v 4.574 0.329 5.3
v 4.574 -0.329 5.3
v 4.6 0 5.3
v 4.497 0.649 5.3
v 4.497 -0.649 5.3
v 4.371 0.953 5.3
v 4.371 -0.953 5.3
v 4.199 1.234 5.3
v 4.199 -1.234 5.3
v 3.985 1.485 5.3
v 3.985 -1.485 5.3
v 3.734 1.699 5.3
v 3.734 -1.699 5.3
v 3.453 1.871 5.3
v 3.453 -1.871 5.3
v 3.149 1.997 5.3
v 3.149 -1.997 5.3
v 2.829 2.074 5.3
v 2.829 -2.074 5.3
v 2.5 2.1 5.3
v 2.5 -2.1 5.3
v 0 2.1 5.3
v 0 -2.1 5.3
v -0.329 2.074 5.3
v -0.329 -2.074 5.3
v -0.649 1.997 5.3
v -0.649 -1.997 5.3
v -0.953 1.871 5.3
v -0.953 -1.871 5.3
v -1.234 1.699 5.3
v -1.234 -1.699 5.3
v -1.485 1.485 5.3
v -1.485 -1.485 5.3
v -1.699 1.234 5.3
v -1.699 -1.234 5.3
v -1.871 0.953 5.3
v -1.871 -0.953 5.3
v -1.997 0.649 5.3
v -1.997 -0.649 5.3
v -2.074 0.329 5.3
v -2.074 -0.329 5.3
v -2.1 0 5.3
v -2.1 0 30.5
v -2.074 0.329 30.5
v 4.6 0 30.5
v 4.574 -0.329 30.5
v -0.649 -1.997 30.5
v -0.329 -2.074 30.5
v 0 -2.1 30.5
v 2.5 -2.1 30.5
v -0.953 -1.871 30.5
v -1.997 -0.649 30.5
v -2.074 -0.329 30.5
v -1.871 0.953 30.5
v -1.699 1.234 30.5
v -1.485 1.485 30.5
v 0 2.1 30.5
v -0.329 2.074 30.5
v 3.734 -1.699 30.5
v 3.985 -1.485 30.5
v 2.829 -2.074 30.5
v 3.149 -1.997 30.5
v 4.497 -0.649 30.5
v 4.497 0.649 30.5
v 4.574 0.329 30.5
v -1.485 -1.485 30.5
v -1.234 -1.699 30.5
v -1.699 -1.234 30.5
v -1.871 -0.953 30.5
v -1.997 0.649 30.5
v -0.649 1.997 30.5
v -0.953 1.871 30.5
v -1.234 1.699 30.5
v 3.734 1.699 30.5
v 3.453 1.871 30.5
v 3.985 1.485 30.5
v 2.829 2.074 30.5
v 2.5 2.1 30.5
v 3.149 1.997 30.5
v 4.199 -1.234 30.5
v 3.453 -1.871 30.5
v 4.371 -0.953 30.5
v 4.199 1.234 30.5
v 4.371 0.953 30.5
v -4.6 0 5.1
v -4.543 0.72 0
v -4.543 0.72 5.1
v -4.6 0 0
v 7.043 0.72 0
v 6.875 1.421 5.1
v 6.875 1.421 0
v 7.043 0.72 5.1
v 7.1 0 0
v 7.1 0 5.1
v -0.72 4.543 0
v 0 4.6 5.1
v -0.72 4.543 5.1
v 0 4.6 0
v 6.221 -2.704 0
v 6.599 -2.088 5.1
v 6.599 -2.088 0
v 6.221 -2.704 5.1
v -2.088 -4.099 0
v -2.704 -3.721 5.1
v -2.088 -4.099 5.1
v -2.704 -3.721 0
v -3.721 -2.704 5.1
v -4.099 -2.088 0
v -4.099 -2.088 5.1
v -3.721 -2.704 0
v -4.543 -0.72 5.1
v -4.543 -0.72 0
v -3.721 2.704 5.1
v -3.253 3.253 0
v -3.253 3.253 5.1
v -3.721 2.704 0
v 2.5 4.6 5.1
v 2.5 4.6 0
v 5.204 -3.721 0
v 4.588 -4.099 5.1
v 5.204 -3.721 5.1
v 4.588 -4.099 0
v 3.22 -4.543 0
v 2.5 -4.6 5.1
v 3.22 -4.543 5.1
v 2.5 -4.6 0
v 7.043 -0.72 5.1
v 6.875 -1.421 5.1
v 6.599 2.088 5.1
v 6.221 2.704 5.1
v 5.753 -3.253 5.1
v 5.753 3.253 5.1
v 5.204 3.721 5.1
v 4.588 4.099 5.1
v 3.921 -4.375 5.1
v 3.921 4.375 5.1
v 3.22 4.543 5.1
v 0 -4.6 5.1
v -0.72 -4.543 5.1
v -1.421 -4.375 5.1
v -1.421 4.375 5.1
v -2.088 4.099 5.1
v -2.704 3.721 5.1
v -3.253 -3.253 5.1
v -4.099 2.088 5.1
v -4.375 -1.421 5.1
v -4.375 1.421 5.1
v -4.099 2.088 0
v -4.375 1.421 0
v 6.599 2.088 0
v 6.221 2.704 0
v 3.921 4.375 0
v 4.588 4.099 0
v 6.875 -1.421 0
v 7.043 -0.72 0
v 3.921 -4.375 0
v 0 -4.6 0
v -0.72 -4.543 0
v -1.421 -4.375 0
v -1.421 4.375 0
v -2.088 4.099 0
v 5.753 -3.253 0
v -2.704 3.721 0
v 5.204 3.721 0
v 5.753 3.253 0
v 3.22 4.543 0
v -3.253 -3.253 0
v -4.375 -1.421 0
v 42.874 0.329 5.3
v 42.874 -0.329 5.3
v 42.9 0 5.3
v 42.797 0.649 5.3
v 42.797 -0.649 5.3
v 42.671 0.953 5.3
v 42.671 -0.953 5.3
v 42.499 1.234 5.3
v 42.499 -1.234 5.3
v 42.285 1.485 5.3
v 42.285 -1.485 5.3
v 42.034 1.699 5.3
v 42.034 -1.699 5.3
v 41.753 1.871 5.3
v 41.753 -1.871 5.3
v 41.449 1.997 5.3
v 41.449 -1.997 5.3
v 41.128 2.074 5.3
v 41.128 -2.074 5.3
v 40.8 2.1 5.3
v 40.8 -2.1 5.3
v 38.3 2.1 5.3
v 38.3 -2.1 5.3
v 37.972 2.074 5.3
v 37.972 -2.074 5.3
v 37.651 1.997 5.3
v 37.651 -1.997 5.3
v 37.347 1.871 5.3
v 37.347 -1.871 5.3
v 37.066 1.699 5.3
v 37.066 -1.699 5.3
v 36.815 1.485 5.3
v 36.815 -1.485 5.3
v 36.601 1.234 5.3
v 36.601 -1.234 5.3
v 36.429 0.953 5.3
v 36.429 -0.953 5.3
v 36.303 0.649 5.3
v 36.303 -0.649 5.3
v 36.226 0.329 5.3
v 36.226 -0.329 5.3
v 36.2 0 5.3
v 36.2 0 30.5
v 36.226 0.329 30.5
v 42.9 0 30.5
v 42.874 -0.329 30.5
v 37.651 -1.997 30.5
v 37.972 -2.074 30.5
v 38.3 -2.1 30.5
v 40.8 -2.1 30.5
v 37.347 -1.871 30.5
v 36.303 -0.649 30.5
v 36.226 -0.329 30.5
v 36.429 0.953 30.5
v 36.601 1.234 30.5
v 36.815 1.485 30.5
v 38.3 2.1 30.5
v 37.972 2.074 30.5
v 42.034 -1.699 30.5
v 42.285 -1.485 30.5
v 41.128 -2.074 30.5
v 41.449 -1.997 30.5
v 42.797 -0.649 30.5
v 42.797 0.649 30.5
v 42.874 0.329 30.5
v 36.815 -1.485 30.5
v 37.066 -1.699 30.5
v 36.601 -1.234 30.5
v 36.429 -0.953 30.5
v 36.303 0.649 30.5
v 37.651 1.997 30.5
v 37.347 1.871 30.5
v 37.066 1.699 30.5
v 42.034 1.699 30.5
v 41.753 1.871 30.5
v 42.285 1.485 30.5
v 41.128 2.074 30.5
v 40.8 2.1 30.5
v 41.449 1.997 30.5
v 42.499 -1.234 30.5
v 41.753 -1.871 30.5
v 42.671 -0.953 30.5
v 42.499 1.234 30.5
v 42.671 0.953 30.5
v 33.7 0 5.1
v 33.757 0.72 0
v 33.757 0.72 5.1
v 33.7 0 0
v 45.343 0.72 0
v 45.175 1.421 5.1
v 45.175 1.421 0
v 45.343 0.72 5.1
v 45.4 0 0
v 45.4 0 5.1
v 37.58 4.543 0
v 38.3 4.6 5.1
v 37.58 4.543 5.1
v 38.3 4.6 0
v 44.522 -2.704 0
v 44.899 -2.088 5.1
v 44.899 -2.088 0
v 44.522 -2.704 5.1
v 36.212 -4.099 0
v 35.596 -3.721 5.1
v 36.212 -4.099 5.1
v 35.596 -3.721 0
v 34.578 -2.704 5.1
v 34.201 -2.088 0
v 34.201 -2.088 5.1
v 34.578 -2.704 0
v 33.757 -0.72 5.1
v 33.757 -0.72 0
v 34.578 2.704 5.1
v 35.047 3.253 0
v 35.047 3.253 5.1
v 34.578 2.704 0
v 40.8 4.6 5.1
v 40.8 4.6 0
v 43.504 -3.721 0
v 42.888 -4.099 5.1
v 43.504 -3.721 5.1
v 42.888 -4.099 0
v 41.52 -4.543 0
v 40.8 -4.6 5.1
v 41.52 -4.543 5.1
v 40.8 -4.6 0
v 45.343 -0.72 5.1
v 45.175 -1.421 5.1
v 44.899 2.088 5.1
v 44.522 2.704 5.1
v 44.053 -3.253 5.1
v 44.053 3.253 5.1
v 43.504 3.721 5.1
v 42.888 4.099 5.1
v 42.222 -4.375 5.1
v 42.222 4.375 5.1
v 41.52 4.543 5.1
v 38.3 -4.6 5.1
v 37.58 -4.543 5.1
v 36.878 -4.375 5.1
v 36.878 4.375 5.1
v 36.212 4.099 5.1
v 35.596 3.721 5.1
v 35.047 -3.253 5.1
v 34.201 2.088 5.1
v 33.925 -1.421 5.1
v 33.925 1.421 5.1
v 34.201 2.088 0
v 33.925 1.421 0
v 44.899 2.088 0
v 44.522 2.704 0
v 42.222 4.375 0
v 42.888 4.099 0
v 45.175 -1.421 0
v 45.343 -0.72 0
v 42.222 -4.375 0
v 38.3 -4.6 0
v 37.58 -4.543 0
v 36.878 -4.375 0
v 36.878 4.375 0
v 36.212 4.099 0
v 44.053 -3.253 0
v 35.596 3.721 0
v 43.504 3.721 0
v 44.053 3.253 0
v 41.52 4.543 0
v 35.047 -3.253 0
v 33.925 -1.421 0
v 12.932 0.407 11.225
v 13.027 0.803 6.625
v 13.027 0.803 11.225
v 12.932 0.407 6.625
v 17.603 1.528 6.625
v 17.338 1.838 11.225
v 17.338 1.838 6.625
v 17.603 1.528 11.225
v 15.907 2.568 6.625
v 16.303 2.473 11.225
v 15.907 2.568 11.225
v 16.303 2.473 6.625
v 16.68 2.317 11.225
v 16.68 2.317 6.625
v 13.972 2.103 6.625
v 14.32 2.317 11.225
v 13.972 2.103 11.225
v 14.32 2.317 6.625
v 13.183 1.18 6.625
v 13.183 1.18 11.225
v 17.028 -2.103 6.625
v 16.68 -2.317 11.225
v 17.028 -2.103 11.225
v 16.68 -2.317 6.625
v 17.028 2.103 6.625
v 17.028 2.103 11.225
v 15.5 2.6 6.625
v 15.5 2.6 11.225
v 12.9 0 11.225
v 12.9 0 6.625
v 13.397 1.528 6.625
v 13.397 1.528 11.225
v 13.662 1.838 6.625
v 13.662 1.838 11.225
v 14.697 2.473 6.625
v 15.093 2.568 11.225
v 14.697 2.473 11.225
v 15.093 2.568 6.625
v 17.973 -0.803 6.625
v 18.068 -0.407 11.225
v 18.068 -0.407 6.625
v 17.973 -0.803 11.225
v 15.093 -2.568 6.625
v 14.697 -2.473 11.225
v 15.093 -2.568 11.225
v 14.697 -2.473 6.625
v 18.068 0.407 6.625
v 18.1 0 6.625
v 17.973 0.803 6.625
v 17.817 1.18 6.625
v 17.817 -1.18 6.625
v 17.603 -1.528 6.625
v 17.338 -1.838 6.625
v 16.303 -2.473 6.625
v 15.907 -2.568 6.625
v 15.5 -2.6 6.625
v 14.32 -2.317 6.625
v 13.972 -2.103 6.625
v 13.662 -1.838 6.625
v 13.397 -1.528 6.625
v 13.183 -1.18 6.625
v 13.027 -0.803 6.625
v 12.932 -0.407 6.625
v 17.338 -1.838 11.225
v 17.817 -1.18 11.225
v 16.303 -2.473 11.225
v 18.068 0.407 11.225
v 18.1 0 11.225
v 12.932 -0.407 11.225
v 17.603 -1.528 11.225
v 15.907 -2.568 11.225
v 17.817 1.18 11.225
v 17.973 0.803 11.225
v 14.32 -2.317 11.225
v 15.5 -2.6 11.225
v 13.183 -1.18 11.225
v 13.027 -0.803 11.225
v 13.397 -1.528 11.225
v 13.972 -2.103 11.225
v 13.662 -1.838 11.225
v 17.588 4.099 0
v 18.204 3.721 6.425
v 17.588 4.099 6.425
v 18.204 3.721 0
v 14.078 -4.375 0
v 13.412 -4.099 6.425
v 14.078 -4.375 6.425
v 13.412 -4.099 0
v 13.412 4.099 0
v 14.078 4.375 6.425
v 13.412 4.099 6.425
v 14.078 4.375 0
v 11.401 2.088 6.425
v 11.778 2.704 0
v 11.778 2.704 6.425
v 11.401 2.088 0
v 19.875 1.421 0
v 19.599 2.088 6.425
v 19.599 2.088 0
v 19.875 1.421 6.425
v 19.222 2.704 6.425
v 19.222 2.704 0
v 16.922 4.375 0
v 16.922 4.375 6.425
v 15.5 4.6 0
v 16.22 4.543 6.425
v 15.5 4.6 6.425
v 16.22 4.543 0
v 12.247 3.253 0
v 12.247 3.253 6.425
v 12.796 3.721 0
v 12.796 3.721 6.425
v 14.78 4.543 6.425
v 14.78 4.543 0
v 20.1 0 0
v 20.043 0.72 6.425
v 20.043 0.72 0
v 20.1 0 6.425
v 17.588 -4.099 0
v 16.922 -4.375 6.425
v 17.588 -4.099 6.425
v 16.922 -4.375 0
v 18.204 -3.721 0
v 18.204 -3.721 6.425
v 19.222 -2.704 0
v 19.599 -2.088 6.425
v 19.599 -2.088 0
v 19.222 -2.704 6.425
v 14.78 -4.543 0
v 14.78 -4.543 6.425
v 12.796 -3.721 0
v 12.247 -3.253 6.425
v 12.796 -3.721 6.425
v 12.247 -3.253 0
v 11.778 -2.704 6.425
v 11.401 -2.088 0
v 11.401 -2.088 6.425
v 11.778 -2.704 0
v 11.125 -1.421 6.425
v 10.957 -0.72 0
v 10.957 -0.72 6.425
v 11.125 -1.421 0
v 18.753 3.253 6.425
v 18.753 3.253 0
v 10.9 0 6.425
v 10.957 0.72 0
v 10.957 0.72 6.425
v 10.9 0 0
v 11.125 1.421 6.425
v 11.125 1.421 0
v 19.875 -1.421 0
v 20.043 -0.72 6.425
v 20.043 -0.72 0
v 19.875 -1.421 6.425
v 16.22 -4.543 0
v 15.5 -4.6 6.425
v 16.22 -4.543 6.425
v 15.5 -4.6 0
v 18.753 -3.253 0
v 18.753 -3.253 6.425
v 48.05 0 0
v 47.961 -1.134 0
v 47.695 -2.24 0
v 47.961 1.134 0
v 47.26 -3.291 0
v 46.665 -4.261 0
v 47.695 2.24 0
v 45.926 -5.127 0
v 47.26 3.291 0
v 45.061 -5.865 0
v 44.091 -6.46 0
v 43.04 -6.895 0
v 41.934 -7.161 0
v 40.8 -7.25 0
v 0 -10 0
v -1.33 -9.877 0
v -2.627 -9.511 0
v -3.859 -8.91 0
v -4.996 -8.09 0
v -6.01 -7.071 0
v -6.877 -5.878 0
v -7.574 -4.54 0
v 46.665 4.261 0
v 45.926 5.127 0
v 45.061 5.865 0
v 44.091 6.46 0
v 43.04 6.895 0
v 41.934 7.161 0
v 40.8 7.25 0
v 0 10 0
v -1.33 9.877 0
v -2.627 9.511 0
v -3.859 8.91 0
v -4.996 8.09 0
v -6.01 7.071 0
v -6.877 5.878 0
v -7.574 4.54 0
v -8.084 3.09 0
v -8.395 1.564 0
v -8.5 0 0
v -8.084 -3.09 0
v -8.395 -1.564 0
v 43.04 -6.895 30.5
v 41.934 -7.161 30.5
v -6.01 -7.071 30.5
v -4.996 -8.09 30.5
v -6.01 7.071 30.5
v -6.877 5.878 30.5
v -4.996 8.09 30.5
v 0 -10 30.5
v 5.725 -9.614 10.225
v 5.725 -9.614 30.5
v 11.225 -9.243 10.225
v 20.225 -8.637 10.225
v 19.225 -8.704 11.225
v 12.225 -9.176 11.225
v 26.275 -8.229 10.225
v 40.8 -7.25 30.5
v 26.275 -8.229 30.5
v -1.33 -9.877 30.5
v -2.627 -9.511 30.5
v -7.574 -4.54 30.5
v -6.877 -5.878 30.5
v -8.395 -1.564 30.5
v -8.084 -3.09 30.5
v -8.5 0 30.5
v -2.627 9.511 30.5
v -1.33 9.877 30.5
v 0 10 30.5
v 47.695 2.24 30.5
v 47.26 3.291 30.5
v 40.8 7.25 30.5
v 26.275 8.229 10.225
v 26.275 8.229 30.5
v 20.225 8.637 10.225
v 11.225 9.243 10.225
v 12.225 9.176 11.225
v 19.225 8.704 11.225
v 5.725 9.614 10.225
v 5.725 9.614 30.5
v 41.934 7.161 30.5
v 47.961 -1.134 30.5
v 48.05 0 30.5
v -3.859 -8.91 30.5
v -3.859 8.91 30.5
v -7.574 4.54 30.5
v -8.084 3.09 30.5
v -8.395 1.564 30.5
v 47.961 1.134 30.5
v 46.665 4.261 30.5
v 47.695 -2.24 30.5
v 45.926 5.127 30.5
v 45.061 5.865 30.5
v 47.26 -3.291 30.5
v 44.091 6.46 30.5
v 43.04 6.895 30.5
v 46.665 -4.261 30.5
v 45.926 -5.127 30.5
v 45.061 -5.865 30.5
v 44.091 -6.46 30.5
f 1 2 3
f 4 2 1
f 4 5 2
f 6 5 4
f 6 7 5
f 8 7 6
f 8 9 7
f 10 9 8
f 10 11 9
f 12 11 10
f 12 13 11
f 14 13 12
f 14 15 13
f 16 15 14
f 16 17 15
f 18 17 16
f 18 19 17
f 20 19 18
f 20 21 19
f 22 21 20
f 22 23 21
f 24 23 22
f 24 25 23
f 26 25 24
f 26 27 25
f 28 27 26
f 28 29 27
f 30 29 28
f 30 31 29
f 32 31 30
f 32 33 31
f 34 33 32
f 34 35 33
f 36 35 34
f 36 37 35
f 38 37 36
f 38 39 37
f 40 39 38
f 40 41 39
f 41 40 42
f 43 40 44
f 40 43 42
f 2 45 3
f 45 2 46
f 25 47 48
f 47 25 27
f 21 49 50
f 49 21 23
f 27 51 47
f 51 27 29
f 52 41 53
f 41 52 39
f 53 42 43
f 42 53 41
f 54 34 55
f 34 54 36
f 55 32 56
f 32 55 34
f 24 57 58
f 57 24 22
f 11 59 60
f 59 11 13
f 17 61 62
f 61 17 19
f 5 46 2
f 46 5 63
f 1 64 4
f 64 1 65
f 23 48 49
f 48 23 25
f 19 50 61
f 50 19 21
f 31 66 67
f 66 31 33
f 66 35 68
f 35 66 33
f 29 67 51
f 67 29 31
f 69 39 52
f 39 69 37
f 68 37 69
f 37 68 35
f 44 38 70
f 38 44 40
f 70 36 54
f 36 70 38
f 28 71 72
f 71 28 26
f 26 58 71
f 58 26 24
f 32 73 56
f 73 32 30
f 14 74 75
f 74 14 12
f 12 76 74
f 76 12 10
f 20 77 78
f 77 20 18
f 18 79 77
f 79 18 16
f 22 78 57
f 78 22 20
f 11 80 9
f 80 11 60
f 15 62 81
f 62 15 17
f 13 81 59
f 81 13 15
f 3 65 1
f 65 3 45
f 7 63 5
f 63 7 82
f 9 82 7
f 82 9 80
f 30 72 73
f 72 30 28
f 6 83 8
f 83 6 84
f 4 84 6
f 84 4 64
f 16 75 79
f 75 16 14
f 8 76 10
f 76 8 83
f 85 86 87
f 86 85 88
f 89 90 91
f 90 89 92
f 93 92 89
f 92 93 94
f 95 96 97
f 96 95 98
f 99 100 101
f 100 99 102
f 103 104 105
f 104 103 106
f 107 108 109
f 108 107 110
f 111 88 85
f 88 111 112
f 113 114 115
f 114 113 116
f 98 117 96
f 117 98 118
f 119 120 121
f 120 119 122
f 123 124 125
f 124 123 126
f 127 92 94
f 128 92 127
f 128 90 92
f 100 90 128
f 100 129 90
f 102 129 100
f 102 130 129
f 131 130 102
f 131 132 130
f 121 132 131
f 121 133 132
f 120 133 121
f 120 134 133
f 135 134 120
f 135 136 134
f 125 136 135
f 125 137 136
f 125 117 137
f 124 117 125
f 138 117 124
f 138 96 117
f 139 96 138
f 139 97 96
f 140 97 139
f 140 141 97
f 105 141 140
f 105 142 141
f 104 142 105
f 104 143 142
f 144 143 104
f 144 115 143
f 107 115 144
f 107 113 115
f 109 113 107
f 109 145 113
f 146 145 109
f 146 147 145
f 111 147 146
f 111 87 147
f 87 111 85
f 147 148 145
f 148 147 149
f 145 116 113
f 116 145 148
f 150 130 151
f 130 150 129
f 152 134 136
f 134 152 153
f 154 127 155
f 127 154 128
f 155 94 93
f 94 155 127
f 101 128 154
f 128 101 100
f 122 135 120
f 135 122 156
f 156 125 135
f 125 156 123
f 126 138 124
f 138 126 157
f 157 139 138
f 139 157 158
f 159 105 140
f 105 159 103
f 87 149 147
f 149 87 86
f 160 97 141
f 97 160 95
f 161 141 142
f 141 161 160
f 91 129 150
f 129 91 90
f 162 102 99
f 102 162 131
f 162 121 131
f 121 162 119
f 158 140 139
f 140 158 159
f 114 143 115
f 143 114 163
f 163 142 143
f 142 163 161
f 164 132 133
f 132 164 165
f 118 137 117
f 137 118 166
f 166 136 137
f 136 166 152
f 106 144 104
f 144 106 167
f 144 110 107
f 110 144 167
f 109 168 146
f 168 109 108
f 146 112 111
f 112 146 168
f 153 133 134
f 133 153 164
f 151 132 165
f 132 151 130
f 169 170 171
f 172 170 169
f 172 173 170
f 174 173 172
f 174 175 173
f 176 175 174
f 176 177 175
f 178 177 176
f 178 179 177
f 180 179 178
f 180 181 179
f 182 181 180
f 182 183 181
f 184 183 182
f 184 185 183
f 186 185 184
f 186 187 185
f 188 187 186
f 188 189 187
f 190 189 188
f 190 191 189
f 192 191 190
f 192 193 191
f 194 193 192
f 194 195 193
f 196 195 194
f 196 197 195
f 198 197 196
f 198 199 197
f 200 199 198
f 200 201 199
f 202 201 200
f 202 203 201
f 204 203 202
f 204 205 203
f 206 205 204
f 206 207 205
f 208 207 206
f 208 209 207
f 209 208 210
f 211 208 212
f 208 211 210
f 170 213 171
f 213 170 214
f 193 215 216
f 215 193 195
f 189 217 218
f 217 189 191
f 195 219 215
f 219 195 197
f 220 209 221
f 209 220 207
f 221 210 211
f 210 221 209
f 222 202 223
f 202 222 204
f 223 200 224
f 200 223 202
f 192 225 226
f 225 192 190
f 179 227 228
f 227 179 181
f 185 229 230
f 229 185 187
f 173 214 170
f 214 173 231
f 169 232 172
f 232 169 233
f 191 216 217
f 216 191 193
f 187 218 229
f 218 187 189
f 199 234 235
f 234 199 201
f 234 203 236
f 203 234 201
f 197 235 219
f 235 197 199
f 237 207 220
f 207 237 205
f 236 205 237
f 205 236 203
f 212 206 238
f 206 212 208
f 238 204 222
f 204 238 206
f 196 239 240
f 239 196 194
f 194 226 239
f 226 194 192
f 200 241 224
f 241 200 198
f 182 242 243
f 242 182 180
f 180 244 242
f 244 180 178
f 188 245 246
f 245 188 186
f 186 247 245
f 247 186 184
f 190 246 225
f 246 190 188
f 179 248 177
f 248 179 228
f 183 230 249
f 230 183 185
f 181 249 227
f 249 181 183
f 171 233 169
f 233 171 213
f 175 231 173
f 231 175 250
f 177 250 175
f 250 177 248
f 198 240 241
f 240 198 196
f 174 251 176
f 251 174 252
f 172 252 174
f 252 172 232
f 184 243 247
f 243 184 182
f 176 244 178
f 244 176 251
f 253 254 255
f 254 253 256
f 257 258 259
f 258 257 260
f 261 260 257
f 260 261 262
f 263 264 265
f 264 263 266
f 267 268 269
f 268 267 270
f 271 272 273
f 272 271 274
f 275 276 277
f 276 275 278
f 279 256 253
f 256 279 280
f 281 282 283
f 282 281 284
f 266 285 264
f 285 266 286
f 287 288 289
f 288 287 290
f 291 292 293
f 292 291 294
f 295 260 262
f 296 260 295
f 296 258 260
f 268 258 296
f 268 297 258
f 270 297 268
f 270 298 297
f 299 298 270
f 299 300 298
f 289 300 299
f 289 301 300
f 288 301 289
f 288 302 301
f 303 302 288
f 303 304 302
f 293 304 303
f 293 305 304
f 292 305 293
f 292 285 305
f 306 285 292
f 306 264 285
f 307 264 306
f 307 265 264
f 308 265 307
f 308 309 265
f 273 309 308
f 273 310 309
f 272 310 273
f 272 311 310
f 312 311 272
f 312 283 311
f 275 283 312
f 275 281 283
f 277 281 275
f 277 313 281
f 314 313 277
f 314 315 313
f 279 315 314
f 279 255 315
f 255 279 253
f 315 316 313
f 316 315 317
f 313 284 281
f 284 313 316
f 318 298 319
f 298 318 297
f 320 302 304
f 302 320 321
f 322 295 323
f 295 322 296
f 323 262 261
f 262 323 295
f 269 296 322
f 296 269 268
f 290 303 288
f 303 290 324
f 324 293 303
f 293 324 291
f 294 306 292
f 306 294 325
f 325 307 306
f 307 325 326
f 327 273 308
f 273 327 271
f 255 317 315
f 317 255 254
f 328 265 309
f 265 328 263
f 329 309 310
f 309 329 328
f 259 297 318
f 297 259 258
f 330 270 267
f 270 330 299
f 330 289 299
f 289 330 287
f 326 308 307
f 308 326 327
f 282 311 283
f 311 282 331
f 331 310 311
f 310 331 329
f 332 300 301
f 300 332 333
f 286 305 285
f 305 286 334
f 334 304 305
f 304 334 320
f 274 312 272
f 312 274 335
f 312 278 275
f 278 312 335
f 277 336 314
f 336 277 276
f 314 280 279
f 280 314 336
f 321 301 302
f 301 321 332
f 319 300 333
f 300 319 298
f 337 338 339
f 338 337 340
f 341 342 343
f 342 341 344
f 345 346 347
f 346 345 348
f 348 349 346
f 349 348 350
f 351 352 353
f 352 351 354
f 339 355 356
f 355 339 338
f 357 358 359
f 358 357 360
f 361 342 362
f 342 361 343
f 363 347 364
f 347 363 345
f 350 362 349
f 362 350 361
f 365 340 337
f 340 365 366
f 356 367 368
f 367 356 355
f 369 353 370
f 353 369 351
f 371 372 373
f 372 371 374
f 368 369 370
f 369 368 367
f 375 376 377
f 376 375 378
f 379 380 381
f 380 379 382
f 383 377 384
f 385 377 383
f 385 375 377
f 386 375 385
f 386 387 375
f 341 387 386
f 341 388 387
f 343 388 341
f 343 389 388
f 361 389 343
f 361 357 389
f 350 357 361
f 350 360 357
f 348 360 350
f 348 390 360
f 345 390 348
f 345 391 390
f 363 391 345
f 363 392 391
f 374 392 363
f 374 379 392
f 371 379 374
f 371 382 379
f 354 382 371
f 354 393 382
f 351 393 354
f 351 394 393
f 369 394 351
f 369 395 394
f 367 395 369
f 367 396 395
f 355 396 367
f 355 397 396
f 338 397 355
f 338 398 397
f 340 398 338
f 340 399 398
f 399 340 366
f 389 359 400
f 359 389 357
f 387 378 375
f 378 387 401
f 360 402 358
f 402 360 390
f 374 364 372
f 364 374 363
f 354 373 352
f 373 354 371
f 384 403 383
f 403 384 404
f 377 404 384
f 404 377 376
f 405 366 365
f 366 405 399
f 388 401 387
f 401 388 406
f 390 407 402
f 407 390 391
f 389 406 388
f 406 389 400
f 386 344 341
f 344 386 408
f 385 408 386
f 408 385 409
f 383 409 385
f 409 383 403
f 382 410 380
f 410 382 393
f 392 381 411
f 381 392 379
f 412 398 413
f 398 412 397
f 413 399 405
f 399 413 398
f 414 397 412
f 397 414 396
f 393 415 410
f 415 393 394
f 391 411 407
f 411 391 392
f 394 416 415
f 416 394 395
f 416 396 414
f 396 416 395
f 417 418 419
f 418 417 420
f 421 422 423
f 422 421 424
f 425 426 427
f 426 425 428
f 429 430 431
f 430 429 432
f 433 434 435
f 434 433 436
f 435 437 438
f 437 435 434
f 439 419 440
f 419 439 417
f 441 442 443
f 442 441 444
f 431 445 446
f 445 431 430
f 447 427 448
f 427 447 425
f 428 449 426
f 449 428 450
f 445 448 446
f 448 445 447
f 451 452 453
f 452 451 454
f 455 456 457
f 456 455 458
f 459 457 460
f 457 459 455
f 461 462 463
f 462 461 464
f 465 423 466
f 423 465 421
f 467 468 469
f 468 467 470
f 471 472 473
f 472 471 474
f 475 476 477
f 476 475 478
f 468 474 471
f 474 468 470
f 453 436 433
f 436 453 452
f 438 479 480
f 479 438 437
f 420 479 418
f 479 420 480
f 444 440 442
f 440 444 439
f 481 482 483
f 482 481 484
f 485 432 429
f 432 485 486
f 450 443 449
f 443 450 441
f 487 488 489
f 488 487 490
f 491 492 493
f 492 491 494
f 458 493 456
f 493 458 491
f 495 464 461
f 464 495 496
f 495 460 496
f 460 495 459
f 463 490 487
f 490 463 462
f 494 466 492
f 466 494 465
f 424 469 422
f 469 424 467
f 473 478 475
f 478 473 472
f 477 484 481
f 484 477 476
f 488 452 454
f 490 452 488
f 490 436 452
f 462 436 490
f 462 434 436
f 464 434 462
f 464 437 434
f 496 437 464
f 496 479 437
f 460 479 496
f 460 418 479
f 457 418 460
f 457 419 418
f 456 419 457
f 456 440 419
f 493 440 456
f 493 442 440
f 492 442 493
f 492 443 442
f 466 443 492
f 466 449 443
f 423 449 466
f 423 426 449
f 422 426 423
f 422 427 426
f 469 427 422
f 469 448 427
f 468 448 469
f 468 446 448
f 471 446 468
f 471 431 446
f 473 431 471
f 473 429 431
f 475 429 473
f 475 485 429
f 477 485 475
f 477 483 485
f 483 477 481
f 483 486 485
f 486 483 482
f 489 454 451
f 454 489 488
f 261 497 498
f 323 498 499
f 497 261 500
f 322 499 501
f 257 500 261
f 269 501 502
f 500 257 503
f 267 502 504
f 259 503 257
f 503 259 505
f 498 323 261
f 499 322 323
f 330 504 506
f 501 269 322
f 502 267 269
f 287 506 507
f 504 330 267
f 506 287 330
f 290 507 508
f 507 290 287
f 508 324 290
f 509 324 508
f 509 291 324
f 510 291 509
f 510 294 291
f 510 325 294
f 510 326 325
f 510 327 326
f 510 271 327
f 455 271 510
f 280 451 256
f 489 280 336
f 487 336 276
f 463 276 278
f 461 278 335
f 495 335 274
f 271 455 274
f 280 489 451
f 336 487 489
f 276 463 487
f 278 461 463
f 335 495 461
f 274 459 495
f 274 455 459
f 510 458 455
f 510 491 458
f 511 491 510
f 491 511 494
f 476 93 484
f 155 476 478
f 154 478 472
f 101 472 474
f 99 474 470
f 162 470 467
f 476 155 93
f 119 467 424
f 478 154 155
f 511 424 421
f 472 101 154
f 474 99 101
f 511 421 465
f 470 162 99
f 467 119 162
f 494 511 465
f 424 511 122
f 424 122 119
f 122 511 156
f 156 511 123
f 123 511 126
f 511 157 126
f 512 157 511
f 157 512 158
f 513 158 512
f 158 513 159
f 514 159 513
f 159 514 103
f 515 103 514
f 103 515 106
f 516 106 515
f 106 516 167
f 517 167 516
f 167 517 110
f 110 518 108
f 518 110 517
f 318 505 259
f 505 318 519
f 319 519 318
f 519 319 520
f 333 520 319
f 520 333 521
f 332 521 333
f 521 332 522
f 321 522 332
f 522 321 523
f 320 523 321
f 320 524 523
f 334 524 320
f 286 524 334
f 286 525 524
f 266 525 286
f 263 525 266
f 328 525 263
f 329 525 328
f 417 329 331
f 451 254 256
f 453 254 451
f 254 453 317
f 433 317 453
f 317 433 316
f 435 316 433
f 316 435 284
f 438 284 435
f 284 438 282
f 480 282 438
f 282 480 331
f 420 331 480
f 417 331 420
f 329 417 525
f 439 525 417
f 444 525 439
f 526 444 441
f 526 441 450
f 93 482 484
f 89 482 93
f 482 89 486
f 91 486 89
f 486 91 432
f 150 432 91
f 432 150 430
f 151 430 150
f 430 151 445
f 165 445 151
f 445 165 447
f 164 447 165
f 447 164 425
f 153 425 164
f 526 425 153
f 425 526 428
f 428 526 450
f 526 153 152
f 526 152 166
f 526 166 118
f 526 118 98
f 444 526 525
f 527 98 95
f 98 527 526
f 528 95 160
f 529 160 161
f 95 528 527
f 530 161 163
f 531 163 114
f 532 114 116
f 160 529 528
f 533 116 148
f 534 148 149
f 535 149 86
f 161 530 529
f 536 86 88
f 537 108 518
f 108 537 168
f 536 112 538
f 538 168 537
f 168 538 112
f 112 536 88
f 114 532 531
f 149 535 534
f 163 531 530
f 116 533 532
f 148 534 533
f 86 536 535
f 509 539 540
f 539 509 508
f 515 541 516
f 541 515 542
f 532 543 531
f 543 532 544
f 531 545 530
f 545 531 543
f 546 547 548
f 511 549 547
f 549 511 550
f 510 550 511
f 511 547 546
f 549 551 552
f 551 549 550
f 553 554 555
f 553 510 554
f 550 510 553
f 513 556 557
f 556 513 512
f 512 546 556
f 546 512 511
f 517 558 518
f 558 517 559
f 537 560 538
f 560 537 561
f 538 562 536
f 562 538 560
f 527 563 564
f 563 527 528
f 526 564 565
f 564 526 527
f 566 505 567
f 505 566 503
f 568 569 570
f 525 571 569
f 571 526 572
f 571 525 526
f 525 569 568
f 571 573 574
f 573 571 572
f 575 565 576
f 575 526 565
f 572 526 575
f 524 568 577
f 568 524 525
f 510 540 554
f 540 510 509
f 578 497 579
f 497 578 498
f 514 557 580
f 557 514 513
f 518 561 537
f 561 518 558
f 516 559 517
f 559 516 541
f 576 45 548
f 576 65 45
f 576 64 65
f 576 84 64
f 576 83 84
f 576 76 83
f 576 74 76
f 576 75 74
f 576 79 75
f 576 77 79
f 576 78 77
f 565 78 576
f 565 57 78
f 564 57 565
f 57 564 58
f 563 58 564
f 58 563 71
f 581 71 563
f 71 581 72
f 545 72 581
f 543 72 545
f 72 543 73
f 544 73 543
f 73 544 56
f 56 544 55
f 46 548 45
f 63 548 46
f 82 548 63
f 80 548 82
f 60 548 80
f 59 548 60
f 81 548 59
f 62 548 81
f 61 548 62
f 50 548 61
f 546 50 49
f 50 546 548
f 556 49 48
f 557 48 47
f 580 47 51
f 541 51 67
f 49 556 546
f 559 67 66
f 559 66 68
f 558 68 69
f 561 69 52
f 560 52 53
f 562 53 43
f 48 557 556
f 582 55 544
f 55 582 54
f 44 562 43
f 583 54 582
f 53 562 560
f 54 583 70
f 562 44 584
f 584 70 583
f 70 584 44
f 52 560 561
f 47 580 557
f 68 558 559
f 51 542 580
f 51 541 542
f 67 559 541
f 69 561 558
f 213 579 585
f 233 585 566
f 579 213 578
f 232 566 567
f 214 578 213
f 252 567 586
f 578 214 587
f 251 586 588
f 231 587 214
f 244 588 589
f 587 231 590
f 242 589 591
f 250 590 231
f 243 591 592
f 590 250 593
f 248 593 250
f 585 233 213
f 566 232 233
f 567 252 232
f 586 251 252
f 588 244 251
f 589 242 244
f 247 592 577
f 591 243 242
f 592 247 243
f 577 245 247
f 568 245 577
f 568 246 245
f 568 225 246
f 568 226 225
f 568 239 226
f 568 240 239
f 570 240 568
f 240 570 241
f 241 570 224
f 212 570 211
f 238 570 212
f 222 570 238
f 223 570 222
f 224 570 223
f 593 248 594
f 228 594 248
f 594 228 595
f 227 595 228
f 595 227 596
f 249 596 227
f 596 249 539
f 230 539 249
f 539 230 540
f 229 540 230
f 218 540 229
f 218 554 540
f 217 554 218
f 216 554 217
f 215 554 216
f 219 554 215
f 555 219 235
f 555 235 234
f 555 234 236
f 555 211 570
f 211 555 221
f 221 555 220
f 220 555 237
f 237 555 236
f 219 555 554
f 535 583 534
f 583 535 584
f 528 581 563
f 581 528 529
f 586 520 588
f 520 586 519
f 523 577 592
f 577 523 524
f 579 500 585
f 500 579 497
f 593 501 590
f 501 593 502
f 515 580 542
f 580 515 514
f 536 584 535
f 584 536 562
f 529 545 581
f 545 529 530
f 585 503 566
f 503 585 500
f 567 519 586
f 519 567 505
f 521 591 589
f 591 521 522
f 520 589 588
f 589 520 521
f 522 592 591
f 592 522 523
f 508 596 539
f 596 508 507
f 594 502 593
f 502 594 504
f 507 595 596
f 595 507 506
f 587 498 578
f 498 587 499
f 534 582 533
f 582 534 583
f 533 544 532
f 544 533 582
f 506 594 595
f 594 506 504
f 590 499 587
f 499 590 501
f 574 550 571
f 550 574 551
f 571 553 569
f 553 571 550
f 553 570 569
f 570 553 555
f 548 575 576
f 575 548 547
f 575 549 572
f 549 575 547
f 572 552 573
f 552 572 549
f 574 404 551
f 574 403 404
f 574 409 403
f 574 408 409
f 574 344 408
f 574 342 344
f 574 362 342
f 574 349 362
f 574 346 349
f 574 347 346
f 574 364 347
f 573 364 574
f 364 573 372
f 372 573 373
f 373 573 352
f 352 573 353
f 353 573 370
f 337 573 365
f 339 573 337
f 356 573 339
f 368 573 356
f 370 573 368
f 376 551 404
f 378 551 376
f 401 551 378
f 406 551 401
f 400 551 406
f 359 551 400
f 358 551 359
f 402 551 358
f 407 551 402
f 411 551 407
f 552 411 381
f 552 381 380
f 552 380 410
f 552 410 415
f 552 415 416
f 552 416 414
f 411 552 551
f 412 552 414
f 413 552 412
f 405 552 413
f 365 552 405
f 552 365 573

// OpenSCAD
$fn=40;
xExtrusionDepthSections = 1;
xExtrusionLength = 70;
yExtrusionWidthSections = 2;
yExtrusionDepthSections = 1;
yExtrusionLength = 70;
zExtrusionWidthSections = 1;
zExtrusionDepthSections = 1;
zExtrusionLength = 40;
tolerance=0.55;
lengthHoleSpacing=30;
wallWidth=5;
vslotIndentHeight=1;
sectionWidth=20;

/* V0 */
% difference() {
   hull() {
      scale([0.85,1,1]) cylinder(d=20,h=34.5);
      translate([38.3+2,0,0]) scale([1,1,1]) cylinder(d=12.5,h=34.5);
   }

   /* all the stuff to remove */

   M4slot();
   translate([38.3,0,0]) M4slot();

   translate([5.5,10.5,14.5]) rotate([90,0,0]) linear_extrude(height=21)
      VSlot2dProfile(
         sectionCountWidth=zExtrusionWidthSections, 
         sectionCountDepth=zExtrusionDepthSections,
         indentHeight=vslotIndentHeight,
         tolerance=tolerance
      );
   translate([10+5.5,0,-0.1]) union() {
      cylinder(h=30, d=5.2);
      cylinder(h=15.225-4.8+0.1, d=9);
   }
}

difference() {
   hull() {
      scale([0.85,1,1]) cylinder(d=20,h=30.5);
      translate([38.3+2.5,0,0]) scale([1,1,1]) cylinder(d=14.5,h=30.5);
   }

   /* all the stuff to remove */

   M4slot();
   translate([38.3,0,0]) M4slot();

   translate([6.0,10.5,10.5]) rotate([90,0,0]) linear_extrude(height=21)
      VSlot2dProfile(
         sectionCountWidth=zExtrusionWidthSections, 
         sectionCountDepth=zExtrusionDepthSections,
         indentHeight=vslotIndentHeight,
         tolerance=tolerance
      );

   /* M5 */
   translate([10+5.5,0,0]) union() {
      translate([0,0,15.225-4.8-4+.2]) cylinder(h=30, d=5.2);
      translate([0,0,-0.1]) cylinder(h=15.225-4.8+0.1-4, d=9.2);
   }
}



module M4slot() {
   translate([0,0,-0.1]) {
      hull() {
         translate([0,0,0]) {
            translate([0,0,5.4]) cylinder(d=4.2,h=25.9);
         }
         translate([2.5,0,0]) {
            translate([0,0,5.4]) cylinder(d=4.2,h=25.9);
         }
      }
      hull() {
         translate([0,0,0]) {
            cylinder(d=9.2,h=5.2);
         }
         translate([2.5,0,0]) {
            cylinder(d=9.2,h=5.2);
         }
      }
   }
}

module extrusionIndent(_indentWidthInside, _indentWidthOutside, _indentHeight) {
    polygon(points=[
            [0,0], 
            [(_indentWidthOutside-_indentWidthInside)/2, _indentHeight], 
            [_indentWidthInside + (_indentWidthOutside-_indentWidthInside)/2, _indentHeight],
            [_indentWidthOutside, 0]
        ]);
};

module VSlot2dProfile(
    extrusionLength = 50,
    sectionWidth = 20,
    indentWidthOutside = 9,
    indentWidthInside = 7,
    indentHeight = 1,
    sectionCountWidth = 3,
    sectionCountDepth = 1,
    topIndent = false,
    bottomIndent = true,
    leftIndent = false,
    rightIndent = false,
    tolerance = 0.8
)
{
    translate([-tolerance/2,-tolerance/2,0]) difference() {
        
            square(
                size=[
                    sectionWidth*sectionCountWidth+tolerance, 
                    sectionWidth*sectionCountDepth+tolerance
                ]
            );
        for(i = [0:sectionCountWidth]) {
            // bottom indents
            if (bottomIndent) 
                translate([i * sectionWidth + (sectionWidth-indentWidthOutside)/2, 0, 0])
                extrusionIndent(indentWidthInside,indentWidthOutside,indentHeight);
            
            // top indents
            if (topIndent)
                translate([
                    i * sectionWidth + (sectionWidth-indentWidthOutside)/2, 
                    sectionWidth*sectionCountDepth+tolerance, 
                    0
                ])
                rotate([180,0,0])
                extrusionIndent(indentWidthInside,indentWidthOutside,indentHeight);
        }
        for(i = [0:sectionCountDepth]) {
            // left side indent
            if (leftIndent)
                translate([0, (i+1) * sectionWidth - (sectionWidth-indentWidthOutside)/2, 0])
                rotate([0,0,-90]) 
                extrusionIndent(indentWidthInside,indentWidthOutside,indentHeight);
            
            // right side inden
            if (rightIndent)
                translate([
                    sectionWidth*sectionCountWidth + tolerance, 
                    i * sectionWidth + (sectionWidth-indentWidthOutside)/2, 
                    0
                ])
                rotate([0,0,90]) 
                extrusionIndent(indentWidthInside,indentWidthOutside,indentHeight);
        }
    }
};
